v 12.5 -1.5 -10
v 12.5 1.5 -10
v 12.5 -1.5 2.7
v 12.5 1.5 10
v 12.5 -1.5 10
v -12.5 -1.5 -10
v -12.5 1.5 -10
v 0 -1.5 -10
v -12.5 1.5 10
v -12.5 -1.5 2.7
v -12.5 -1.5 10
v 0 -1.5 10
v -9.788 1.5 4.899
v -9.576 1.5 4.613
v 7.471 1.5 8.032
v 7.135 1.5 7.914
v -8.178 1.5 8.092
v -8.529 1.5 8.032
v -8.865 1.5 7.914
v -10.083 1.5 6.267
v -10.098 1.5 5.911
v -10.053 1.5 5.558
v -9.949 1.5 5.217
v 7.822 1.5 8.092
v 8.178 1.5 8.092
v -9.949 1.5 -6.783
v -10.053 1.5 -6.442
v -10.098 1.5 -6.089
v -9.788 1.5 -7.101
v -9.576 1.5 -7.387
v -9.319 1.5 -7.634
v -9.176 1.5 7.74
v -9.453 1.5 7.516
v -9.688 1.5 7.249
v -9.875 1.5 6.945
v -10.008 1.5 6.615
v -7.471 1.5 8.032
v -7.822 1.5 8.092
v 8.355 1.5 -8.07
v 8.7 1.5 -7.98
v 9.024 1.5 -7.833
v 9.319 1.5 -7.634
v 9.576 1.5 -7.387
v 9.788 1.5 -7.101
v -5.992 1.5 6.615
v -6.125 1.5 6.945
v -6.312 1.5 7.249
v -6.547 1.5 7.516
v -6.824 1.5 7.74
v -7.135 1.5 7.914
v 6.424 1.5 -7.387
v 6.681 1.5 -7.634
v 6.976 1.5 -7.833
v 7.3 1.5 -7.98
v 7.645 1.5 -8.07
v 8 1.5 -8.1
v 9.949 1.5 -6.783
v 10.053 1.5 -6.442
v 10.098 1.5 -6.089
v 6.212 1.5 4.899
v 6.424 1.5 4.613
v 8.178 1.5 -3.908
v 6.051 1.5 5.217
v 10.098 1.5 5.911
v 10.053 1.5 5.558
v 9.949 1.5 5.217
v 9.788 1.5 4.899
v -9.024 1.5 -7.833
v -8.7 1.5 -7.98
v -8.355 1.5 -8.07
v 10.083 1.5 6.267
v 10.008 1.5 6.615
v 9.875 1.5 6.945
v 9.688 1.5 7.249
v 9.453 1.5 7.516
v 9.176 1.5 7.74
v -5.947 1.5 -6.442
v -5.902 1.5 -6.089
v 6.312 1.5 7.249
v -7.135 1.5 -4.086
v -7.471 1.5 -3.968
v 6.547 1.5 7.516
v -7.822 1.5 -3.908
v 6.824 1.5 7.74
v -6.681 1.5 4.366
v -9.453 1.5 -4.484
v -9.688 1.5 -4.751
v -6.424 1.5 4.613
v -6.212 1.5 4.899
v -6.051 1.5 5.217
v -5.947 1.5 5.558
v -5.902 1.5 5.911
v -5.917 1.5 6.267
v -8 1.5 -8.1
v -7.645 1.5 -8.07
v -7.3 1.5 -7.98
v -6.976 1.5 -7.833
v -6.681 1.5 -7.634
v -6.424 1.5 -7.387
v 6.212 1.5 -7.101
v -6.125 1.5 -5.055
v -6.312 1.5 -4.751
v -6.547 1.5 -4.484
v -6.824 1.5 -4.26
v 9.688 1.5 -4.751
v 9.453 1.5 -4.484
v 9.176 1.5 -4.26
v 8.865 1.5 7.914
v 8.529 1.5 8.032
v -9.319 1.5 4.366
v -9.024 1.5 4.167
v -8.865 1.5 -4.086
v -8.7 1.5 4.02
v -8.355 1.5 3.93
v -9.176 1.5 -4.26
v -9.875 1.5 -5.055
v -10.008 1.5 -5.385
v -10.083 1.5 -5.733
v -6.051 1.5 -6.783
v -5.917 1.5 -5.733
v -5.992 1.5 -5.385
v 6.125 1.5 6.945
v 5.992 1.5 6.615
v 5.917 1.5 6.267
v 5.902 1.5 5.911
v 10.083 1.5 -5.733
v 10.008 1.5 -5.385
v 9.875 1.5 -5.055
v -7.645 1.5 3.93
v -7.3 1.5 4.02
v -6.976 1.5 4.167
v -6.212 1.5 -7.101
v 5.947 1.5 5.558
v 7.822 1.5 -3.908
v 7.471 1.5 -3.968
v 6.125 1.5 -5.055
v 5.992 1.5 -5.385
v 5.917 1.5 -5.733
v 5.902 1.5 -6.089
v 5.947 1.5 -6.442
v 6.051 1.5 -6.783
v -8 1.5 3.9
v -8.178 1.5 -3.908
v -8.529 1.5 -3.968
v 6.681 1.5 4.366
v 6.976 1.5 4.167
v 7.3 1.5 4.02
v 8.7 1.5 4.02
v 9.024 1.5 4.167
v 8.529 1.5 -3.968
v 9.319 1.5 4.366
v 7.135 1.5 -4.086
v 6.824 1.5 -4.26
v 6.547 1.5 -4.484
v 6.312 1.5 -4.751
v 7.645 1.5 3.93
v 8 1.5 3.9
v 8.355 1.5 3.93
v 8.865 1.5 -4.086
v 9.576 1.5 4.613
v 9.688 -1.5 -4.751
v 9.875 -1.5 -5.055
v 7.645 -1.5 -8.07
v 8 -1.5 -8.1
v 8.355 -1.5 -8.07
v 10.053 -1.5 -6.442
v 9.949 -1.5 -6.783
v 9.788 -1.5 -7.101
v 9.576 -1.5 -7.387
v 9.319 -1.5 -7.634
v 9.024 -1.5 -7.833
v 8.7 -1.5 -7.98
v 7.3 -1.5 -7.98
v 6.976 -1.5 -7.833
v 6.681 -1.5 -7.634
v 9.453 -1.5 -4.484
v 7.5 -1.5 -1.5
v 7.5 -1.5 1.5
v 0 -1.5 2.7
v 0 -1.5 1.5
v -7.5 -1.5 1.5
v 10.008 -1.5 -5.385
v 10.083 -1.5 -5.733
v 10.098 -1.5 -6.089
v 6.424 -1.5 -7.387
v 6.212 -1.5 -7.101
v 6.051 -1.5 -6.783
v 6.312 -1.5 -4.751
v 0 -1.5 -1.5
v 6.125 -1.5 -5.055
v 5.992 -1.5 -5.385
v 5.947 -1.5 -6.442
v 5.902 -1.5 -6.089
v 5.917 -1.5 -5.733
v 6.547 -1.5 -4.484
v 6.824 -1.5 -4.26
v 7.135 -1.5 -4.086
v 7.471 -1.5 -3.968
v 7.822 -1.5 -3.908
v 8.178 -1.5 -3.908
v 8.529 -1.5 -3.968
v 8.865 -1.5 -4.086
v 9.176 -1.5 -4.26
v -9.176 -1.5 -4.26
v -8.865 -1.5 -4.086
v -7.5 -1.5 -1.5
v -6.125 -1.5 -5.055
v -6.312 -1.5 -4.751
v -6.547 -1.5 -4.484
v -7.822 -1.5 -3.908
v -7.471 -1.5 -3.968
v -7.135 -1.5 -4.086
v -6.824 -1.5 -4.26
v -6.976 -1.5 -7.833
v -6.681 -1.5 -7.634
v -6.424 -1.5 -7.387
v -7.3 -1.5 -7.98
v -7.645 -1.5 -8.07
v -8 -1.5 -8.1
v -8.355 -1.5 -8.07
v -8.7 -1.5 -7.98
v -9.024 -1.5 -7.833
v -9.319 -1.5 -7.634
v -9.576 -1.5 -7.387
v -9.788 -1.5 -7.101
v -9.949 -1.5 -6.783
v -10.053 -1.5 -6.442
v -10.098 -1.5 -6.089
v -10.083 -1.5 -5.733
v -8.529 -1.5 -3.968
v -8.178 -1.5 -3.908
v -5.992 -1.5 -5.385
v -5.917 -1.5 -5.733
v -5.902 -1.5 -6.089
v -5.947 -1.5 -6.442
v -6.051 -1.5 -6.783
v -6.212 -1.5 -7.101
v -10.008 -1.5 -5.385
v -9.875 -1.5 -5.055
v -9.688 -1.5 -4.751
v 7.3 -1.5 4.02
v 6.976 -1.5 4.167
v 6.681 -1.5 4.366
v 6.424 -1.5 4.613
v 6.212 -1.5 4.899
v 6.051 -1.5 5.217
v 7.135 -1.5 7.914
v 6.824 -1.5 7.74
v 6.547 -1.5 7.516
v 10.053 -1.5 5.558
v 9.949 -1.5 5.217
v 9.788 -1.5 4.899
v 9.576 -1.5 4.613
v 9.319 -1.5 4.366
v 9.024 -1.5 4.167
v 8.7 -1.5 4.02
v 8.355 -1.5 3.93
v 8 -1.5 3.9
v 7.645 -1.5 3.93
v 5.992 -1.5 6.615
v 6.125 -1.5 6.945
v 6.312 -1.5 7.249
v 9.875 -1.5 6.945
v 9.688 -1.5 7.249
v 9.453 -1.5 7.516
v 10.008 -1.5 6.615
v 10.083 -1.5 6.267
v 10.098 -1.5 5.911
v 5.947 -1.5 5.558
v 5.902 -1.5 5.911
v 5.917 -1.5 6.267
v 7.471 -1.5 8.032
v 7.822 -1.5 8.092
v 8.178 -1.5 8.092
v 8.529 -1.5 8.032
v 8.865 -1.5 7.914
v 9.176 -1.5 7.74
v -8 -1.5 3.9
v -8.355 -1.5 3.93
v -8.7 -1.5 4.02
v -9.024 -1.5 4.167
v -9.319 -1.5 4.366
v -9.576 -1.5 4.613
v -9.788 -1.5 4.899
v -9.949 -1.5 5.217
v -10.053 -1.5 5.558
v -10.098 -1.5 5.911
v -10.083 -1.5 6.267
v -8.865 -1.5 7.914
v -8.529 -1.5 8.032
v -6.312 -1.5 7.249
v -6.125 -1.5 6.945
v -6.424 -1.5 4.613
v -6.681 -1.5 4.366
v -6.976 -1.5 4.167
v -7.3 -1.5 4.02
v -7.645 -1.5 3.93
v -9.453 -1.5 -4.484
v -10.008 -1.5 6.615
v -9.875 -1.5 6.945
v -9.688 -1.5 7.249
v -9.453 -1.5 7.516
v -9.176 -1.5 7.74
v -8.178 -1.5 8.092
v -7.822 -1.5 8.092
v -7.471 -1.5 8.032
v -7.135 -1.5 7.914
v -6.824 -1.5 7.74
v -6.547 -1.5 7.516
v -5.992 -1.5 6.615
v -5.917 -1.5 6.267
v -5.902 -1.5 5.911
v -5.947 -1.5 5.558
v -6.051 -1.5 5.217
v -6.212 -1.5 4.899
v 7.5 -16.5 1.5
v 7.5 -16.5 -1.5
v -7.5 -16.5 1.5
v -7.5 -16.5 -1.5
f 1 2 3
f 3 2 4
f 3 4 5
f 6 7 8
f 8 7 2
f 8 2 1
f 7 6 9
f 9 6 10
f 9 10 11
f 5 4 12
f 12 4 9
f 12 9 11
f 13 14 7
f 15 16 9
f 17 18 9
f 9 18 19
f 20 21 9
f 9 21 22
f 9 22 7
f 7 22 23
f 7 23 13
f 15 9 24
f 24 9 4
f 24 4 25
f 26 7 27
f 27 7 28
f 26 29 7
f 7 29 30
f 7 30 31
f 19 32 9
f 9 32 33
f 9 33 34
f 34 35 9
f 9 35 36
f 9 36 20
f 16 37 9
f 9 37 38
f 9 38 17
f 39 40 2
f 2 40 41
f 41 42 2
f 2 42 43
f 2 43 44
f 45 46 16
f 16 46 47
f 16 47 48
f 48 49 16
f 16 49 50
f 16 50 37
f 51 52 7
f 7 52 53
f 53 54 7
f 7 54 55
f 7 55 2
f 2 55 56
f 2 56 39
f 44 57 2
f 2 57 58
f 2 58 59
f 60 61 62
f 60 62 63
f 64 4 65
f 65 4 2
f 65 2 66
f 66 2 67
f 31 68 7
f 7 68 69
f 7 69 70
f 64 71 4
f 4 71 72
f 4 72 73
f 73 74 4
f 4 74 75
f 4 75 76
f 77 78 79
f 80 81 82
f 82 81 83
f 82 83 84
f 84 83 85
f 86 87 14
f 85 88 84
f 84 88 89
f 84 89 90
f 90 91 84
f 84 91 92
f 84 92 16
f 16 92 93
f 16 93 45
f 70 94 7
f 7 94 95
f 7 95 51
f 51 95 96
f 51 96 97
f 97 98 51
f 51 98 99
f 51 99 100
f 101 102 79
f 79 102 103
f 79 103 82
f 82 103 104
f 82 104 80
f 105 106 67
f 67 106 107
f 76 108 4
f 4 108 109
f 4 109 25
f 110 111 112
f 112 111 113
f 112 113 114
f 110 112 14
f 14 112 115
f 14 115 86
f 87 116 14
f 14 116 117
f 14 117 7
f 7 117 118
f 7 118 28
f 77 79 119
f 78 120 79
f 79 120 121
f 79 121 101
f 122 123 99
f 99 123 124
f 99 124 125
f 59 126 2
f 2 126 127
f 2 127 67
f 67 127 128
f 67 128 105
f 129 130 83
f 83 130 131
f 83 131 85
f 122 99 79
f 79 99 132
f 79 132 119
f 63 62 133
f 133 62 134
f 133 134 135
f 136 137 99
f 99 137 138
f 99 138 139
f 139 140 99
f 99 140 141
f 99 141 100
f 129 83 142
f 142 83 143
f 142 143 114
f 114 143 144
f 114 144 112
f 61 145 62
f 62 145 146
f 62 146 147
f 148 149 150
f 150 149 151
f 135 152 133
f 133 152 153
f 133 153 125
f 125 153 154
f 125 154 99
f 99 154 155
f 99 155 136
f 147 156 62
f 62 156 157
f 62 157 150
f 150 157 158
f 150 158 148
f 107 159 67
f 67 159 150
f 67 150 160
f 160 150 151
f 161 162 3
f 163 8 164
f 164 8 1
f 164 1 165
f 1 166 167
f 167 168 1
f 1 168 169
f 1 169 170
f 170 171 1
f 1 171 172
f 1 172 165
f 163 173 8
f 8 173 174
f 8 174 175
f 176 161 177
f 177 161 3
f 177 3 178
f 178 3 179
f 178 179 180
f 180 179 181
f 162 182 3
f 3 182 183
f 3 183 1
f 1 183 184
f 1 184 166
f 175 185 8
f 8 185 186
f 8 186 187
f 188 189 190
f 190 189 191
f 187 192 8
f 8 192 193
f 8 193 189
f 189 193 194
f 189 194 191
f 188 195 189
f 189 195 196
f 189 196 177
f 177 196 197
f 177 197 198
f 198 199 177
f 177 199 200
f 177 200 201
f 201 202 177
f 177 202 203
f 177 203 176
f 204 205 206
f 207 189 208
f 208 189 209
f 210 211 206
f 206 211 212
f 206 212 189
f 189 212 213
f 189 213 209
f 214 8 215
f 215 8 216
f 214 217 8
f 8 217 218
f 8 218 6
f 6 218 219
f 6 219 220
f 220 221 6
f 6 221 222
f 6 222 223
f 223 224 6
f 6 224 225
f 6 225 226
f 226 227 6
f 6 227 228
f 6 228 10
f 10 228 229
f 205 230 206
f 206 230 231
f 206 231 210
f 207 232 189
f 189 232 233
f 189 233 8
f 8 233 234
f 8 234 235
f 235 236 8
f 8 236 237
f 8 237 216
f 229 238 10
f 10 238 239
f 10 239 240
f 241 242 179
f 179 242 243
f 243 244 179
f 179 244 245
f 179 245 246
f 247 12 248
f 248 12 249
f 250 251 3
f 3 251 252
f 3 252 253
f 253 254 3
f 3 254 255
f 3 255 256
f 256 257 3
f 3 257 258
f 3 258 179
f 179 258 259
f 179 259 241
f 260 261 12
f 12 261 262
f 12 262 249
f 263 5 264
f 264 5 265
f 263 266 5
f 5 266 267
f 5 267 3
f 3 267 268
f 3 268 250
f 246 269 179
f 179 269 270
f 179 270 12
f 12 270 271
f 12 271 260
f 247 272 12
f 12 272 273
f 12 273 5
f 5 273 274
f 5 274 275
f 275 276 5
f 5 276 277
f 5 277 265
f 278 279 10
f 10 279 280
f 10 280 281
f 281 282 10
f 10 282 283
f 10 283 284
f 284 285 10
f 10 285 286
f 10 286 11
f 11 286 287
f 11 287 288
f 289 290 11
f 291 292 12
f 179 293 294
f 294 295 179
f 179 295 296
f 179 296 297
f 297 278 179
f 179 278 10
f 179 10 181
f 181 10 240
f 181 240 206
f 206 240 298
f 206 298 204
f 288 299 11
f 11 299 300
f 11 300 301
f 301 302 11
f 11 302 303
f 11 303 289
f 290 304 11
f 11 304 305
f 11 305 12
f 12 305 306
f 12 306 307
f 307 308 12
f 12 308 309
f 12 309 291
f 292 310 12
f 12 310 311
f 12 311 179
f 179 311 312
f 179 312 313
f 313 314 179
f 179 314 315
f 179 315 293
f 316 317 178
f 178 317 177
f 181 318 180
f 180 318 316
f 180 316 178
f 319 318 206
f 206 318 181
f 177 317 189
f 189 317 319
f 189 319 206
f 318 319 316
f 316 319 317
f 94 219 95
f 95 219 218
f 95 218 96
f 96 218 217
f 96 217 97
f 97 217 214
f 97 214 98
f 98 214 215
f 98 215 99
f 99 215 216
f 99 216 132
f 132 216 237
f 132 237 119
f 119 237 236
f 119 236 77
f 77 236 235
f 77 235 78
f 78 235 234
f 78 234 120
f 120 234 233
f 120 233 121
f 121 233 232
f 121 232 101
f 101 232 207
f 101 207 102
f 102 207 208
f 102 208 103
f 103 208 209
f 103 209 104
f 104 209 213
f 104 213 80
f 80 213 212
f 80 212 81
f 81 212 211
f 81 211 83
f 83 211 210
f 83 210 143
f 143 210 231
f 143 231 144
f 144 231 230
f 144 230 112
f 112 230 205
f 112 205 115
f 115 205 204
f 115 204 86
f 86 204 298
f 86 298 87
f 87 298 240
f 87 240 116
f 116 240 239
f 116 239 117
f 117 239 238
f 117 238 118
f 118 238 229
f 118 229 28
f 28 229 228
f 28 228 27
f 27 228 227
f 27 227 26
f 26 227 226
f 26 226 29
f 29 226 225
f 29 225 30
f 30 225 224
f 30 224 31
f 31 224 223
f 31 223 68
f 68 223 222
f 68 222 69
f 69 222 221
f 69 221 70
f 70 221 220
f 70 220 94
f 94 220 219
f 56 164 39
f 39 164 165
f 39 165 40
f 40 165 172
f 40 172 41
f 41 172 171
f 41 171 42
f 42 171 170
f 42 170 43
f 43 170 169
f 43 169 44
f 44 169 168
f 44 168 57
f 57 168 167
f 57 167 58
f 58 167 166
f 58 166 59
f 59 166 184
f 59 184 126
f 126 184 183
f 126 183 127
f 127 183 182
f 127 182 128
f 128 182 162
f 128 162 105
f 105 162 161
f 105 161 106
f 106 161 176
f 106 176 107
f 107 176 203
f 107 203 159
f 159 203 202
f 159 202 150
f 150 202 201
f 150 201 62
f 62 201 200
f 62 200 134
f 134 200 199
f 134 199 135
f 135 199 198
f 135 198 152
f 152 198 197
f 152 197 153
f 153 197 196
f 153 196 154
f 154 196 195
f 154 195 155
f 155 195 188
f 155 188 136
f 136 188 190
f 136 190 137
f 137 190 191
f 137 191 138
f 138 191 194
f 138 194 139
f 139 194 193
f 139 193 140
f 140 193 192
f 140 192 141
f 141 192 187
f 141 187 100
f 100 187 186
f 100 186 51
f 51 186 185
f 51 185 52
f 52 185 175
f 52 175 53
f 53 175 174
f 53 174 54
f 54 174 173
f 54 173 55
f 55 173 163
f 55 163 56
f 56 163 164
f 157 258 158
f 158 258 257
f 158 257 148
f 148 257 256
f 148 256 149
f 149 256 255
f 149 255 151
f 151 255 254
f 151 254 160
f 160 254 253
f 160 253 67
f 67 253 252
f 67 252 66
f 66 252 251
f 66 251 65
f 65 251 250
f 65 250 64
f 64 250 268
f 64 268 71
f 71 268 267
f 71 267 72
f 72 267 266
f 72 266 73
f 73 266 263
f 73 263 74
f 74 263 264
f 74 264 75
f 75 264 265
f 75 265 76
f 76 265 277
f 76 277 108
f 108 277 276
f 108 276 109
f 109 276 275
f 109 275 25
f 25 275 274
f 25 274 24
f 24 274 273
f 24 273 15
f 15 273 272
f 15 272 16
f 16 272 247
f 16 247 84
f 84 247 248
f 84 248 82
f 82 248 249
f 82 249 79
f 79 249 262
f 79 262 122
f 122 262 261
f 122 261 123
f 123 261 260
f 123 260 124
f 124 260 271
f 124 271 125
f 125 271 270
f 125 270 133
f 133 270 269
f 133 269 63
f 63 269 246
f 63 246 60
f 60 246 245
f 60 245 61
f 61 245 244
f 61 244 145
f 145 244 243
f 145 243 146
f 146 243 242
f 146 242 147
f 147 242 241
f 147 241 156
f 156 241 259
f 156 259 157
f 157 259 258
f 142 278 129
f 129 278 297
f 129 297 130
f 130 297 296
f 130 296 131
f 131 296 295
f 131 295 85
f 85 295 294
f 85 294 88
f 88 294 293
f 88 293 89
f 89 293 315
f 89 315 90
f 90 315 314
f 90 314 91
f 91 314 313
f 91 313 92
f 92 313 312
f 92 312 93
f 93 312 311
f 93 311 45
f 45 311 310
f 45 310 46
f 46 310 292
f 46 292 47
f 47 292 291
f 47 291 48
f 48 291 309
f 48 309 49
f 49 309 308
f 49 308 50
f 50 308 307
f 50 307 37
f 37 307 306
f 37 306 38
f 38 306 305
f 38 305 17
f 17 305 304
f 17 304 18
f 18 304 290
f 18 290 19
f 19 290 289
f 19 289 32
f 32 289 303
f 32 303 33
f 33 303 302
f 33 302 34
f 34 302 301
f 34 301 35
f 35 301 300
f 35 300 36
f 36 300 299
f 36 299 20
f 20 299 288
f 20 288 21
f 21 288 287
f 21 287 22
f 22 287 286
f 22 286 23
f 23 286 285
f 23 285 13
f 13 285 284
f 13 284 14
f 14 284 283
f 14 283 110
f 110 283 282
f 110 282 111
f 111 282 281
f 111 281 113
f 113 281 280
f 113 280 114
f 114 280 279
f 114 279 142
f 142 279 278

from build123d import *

# Parameters (mm, degrees)
SKETCH1_W                      = 25
SKETCH1_H                      = 20
BOSS_EXTRUDE1_DEPTH            = 1.5
SKETCH2_W                      = 15
SKETCH2_H                      = 3
BOSS_EXTRUDE2_DEPTH            = 15
CUT_EXTRUDE1_REACH             = 20
SKETCH3_R                      = 2.1
CUT_EXTRUDE1_DIRECTION_2_DEPTH = 1


with BuildPart() as part:
    # Sketch1 → Boss-Extrude1 (new body, symmetric)
    with BuildSketch(Plane(origin=(0, 0, 0), x_dir=(1, 0, 0), z_dir=(0, 1, 0))):
        Rectangle(SKETCH1_W, SKETCH1_H)
    extrude(amount=BOSS_EXTRUDE1_DEPTH, both=True)

    # Sketch2 → Boss-Extrude2 (add)
    with BuildSketch(Plane.XZ.offset(1.5)):
        Rectangle(SKETCH2_W, SKETCH2_H)
    extrude(amount=BOSS_EXTRUDE2_DEPTH)

    # Sketch3 → Cut-Extrude1 (cut, up to next)
    with BuildSketch(Plane(origin=(0, 1.5, 0), x_dir=(1, 0, 0), z_dir=(0, 1, 0)), mode=Mode.PRIVATE) as cut_extrude1_sk1:
        with Locations((-8, 6)):
            Circle(SKETCH3_R)
    cut_extrude1_tool1 = extrude(cut_extrude1_sk1.sketch, amount=-CUT_EXTRUDE1_REACH, mode=Mode.PRIVATE) & part.part
    add(cut_extrude1_tool1.solids().sort_by_distance((-8, 1.5, -6))[0], mode=Mode.SUBTRACT)
    # Sketch3 → Cut-Extrude1 (cut, up to next)
    with BuildSketch(Plane(origin=(0, 1.5, 0), x_dir=(1, 0, 0), z_dir=(0, 1, 0)), mode=Mode.PRIVATE) as cut_extrude1_sk2:
        with Locations((8, 6)):
            Circle(SKETCH3_R)
    cut_extrude1_tool2 = extrude(cut_extrude1_sk2.sketch, amount=-CUT_EXTRUDE1_REACH, mode=Mode.PRIVATE) & part.part
    add(cut_extrude1_tool2.solids().sort_by_distance((8, 1.5, -6))[0], mode=Mode.SUBTRACT)
    # Sketch3 → Cut-Extrude1 (cut, up to next)
    with BuildSketch(Plane(origin=(0, 1.5, 0), x_dir=(1, 0, 0), z_dir=(0, 1, 0)), mode=Mode.PRIVATE) as cut_extrude1_sk3:
        with Locations((8, -6)):
            Circle(SKETCH3_R)
    cut_extrude1_tool3 = extrude(cut_extrude1_sk3.sketch, amount=-CUT_EXTRUDE1_REACH, mode=Mode.PRIVATE) & part.part
    add(cut_extrude1_tool3.solids().sort_by_distance((8, 1.5, 6))[0], mode=Mode.SUBTRACT)
    # Sketch3 → Cut-Extrude1 (cut, up to next)
    with BuildSketch(Plane(origin=(0, 1.5, 0), x_dir=(1, 0, 0), z_dir=(0, 1, 0)), mode=Mode.PRIVATE) as cut_extrude1_sk4:
        with Locations((-8, -6)):
            Circle(SKETCH3_R)
    cut_extrude1_tool4 = extrude(cut_extrude1_sk4.sketch, amount=-CUT_EXTRUDE1_REACH, mode=Mode.PRIVATE) & part.part
    add(cut_extrude1_tool4.solids().sort_by_distance((-8, 1.5, 6))[0], mode=Mode.SUBTRACT)

    # Sketch3 → Cut-Extrude1 direction 2 (cut)
    with BuildSketch(Plane(origin=(0, 1.5, 0), x_dir=(1, 0, 0), z_dir=(0, 1, 0))):
        with Locations((-8, 6)):
            Circle(SKETCH3_R)
        with Locations((8, 6)):
            Circle(SKETCH3_R)
        with Locations((8, -6)):
            Circle(SKETCH3_R)
        with Locations((-8, -6)):
            Circle(SKETCH3_R)
    extrude(amount=CUT_EXTRUDE1_DIRECTION_2_DEPTH, mode=Mode.SUBTRACT)


solid = part.part
